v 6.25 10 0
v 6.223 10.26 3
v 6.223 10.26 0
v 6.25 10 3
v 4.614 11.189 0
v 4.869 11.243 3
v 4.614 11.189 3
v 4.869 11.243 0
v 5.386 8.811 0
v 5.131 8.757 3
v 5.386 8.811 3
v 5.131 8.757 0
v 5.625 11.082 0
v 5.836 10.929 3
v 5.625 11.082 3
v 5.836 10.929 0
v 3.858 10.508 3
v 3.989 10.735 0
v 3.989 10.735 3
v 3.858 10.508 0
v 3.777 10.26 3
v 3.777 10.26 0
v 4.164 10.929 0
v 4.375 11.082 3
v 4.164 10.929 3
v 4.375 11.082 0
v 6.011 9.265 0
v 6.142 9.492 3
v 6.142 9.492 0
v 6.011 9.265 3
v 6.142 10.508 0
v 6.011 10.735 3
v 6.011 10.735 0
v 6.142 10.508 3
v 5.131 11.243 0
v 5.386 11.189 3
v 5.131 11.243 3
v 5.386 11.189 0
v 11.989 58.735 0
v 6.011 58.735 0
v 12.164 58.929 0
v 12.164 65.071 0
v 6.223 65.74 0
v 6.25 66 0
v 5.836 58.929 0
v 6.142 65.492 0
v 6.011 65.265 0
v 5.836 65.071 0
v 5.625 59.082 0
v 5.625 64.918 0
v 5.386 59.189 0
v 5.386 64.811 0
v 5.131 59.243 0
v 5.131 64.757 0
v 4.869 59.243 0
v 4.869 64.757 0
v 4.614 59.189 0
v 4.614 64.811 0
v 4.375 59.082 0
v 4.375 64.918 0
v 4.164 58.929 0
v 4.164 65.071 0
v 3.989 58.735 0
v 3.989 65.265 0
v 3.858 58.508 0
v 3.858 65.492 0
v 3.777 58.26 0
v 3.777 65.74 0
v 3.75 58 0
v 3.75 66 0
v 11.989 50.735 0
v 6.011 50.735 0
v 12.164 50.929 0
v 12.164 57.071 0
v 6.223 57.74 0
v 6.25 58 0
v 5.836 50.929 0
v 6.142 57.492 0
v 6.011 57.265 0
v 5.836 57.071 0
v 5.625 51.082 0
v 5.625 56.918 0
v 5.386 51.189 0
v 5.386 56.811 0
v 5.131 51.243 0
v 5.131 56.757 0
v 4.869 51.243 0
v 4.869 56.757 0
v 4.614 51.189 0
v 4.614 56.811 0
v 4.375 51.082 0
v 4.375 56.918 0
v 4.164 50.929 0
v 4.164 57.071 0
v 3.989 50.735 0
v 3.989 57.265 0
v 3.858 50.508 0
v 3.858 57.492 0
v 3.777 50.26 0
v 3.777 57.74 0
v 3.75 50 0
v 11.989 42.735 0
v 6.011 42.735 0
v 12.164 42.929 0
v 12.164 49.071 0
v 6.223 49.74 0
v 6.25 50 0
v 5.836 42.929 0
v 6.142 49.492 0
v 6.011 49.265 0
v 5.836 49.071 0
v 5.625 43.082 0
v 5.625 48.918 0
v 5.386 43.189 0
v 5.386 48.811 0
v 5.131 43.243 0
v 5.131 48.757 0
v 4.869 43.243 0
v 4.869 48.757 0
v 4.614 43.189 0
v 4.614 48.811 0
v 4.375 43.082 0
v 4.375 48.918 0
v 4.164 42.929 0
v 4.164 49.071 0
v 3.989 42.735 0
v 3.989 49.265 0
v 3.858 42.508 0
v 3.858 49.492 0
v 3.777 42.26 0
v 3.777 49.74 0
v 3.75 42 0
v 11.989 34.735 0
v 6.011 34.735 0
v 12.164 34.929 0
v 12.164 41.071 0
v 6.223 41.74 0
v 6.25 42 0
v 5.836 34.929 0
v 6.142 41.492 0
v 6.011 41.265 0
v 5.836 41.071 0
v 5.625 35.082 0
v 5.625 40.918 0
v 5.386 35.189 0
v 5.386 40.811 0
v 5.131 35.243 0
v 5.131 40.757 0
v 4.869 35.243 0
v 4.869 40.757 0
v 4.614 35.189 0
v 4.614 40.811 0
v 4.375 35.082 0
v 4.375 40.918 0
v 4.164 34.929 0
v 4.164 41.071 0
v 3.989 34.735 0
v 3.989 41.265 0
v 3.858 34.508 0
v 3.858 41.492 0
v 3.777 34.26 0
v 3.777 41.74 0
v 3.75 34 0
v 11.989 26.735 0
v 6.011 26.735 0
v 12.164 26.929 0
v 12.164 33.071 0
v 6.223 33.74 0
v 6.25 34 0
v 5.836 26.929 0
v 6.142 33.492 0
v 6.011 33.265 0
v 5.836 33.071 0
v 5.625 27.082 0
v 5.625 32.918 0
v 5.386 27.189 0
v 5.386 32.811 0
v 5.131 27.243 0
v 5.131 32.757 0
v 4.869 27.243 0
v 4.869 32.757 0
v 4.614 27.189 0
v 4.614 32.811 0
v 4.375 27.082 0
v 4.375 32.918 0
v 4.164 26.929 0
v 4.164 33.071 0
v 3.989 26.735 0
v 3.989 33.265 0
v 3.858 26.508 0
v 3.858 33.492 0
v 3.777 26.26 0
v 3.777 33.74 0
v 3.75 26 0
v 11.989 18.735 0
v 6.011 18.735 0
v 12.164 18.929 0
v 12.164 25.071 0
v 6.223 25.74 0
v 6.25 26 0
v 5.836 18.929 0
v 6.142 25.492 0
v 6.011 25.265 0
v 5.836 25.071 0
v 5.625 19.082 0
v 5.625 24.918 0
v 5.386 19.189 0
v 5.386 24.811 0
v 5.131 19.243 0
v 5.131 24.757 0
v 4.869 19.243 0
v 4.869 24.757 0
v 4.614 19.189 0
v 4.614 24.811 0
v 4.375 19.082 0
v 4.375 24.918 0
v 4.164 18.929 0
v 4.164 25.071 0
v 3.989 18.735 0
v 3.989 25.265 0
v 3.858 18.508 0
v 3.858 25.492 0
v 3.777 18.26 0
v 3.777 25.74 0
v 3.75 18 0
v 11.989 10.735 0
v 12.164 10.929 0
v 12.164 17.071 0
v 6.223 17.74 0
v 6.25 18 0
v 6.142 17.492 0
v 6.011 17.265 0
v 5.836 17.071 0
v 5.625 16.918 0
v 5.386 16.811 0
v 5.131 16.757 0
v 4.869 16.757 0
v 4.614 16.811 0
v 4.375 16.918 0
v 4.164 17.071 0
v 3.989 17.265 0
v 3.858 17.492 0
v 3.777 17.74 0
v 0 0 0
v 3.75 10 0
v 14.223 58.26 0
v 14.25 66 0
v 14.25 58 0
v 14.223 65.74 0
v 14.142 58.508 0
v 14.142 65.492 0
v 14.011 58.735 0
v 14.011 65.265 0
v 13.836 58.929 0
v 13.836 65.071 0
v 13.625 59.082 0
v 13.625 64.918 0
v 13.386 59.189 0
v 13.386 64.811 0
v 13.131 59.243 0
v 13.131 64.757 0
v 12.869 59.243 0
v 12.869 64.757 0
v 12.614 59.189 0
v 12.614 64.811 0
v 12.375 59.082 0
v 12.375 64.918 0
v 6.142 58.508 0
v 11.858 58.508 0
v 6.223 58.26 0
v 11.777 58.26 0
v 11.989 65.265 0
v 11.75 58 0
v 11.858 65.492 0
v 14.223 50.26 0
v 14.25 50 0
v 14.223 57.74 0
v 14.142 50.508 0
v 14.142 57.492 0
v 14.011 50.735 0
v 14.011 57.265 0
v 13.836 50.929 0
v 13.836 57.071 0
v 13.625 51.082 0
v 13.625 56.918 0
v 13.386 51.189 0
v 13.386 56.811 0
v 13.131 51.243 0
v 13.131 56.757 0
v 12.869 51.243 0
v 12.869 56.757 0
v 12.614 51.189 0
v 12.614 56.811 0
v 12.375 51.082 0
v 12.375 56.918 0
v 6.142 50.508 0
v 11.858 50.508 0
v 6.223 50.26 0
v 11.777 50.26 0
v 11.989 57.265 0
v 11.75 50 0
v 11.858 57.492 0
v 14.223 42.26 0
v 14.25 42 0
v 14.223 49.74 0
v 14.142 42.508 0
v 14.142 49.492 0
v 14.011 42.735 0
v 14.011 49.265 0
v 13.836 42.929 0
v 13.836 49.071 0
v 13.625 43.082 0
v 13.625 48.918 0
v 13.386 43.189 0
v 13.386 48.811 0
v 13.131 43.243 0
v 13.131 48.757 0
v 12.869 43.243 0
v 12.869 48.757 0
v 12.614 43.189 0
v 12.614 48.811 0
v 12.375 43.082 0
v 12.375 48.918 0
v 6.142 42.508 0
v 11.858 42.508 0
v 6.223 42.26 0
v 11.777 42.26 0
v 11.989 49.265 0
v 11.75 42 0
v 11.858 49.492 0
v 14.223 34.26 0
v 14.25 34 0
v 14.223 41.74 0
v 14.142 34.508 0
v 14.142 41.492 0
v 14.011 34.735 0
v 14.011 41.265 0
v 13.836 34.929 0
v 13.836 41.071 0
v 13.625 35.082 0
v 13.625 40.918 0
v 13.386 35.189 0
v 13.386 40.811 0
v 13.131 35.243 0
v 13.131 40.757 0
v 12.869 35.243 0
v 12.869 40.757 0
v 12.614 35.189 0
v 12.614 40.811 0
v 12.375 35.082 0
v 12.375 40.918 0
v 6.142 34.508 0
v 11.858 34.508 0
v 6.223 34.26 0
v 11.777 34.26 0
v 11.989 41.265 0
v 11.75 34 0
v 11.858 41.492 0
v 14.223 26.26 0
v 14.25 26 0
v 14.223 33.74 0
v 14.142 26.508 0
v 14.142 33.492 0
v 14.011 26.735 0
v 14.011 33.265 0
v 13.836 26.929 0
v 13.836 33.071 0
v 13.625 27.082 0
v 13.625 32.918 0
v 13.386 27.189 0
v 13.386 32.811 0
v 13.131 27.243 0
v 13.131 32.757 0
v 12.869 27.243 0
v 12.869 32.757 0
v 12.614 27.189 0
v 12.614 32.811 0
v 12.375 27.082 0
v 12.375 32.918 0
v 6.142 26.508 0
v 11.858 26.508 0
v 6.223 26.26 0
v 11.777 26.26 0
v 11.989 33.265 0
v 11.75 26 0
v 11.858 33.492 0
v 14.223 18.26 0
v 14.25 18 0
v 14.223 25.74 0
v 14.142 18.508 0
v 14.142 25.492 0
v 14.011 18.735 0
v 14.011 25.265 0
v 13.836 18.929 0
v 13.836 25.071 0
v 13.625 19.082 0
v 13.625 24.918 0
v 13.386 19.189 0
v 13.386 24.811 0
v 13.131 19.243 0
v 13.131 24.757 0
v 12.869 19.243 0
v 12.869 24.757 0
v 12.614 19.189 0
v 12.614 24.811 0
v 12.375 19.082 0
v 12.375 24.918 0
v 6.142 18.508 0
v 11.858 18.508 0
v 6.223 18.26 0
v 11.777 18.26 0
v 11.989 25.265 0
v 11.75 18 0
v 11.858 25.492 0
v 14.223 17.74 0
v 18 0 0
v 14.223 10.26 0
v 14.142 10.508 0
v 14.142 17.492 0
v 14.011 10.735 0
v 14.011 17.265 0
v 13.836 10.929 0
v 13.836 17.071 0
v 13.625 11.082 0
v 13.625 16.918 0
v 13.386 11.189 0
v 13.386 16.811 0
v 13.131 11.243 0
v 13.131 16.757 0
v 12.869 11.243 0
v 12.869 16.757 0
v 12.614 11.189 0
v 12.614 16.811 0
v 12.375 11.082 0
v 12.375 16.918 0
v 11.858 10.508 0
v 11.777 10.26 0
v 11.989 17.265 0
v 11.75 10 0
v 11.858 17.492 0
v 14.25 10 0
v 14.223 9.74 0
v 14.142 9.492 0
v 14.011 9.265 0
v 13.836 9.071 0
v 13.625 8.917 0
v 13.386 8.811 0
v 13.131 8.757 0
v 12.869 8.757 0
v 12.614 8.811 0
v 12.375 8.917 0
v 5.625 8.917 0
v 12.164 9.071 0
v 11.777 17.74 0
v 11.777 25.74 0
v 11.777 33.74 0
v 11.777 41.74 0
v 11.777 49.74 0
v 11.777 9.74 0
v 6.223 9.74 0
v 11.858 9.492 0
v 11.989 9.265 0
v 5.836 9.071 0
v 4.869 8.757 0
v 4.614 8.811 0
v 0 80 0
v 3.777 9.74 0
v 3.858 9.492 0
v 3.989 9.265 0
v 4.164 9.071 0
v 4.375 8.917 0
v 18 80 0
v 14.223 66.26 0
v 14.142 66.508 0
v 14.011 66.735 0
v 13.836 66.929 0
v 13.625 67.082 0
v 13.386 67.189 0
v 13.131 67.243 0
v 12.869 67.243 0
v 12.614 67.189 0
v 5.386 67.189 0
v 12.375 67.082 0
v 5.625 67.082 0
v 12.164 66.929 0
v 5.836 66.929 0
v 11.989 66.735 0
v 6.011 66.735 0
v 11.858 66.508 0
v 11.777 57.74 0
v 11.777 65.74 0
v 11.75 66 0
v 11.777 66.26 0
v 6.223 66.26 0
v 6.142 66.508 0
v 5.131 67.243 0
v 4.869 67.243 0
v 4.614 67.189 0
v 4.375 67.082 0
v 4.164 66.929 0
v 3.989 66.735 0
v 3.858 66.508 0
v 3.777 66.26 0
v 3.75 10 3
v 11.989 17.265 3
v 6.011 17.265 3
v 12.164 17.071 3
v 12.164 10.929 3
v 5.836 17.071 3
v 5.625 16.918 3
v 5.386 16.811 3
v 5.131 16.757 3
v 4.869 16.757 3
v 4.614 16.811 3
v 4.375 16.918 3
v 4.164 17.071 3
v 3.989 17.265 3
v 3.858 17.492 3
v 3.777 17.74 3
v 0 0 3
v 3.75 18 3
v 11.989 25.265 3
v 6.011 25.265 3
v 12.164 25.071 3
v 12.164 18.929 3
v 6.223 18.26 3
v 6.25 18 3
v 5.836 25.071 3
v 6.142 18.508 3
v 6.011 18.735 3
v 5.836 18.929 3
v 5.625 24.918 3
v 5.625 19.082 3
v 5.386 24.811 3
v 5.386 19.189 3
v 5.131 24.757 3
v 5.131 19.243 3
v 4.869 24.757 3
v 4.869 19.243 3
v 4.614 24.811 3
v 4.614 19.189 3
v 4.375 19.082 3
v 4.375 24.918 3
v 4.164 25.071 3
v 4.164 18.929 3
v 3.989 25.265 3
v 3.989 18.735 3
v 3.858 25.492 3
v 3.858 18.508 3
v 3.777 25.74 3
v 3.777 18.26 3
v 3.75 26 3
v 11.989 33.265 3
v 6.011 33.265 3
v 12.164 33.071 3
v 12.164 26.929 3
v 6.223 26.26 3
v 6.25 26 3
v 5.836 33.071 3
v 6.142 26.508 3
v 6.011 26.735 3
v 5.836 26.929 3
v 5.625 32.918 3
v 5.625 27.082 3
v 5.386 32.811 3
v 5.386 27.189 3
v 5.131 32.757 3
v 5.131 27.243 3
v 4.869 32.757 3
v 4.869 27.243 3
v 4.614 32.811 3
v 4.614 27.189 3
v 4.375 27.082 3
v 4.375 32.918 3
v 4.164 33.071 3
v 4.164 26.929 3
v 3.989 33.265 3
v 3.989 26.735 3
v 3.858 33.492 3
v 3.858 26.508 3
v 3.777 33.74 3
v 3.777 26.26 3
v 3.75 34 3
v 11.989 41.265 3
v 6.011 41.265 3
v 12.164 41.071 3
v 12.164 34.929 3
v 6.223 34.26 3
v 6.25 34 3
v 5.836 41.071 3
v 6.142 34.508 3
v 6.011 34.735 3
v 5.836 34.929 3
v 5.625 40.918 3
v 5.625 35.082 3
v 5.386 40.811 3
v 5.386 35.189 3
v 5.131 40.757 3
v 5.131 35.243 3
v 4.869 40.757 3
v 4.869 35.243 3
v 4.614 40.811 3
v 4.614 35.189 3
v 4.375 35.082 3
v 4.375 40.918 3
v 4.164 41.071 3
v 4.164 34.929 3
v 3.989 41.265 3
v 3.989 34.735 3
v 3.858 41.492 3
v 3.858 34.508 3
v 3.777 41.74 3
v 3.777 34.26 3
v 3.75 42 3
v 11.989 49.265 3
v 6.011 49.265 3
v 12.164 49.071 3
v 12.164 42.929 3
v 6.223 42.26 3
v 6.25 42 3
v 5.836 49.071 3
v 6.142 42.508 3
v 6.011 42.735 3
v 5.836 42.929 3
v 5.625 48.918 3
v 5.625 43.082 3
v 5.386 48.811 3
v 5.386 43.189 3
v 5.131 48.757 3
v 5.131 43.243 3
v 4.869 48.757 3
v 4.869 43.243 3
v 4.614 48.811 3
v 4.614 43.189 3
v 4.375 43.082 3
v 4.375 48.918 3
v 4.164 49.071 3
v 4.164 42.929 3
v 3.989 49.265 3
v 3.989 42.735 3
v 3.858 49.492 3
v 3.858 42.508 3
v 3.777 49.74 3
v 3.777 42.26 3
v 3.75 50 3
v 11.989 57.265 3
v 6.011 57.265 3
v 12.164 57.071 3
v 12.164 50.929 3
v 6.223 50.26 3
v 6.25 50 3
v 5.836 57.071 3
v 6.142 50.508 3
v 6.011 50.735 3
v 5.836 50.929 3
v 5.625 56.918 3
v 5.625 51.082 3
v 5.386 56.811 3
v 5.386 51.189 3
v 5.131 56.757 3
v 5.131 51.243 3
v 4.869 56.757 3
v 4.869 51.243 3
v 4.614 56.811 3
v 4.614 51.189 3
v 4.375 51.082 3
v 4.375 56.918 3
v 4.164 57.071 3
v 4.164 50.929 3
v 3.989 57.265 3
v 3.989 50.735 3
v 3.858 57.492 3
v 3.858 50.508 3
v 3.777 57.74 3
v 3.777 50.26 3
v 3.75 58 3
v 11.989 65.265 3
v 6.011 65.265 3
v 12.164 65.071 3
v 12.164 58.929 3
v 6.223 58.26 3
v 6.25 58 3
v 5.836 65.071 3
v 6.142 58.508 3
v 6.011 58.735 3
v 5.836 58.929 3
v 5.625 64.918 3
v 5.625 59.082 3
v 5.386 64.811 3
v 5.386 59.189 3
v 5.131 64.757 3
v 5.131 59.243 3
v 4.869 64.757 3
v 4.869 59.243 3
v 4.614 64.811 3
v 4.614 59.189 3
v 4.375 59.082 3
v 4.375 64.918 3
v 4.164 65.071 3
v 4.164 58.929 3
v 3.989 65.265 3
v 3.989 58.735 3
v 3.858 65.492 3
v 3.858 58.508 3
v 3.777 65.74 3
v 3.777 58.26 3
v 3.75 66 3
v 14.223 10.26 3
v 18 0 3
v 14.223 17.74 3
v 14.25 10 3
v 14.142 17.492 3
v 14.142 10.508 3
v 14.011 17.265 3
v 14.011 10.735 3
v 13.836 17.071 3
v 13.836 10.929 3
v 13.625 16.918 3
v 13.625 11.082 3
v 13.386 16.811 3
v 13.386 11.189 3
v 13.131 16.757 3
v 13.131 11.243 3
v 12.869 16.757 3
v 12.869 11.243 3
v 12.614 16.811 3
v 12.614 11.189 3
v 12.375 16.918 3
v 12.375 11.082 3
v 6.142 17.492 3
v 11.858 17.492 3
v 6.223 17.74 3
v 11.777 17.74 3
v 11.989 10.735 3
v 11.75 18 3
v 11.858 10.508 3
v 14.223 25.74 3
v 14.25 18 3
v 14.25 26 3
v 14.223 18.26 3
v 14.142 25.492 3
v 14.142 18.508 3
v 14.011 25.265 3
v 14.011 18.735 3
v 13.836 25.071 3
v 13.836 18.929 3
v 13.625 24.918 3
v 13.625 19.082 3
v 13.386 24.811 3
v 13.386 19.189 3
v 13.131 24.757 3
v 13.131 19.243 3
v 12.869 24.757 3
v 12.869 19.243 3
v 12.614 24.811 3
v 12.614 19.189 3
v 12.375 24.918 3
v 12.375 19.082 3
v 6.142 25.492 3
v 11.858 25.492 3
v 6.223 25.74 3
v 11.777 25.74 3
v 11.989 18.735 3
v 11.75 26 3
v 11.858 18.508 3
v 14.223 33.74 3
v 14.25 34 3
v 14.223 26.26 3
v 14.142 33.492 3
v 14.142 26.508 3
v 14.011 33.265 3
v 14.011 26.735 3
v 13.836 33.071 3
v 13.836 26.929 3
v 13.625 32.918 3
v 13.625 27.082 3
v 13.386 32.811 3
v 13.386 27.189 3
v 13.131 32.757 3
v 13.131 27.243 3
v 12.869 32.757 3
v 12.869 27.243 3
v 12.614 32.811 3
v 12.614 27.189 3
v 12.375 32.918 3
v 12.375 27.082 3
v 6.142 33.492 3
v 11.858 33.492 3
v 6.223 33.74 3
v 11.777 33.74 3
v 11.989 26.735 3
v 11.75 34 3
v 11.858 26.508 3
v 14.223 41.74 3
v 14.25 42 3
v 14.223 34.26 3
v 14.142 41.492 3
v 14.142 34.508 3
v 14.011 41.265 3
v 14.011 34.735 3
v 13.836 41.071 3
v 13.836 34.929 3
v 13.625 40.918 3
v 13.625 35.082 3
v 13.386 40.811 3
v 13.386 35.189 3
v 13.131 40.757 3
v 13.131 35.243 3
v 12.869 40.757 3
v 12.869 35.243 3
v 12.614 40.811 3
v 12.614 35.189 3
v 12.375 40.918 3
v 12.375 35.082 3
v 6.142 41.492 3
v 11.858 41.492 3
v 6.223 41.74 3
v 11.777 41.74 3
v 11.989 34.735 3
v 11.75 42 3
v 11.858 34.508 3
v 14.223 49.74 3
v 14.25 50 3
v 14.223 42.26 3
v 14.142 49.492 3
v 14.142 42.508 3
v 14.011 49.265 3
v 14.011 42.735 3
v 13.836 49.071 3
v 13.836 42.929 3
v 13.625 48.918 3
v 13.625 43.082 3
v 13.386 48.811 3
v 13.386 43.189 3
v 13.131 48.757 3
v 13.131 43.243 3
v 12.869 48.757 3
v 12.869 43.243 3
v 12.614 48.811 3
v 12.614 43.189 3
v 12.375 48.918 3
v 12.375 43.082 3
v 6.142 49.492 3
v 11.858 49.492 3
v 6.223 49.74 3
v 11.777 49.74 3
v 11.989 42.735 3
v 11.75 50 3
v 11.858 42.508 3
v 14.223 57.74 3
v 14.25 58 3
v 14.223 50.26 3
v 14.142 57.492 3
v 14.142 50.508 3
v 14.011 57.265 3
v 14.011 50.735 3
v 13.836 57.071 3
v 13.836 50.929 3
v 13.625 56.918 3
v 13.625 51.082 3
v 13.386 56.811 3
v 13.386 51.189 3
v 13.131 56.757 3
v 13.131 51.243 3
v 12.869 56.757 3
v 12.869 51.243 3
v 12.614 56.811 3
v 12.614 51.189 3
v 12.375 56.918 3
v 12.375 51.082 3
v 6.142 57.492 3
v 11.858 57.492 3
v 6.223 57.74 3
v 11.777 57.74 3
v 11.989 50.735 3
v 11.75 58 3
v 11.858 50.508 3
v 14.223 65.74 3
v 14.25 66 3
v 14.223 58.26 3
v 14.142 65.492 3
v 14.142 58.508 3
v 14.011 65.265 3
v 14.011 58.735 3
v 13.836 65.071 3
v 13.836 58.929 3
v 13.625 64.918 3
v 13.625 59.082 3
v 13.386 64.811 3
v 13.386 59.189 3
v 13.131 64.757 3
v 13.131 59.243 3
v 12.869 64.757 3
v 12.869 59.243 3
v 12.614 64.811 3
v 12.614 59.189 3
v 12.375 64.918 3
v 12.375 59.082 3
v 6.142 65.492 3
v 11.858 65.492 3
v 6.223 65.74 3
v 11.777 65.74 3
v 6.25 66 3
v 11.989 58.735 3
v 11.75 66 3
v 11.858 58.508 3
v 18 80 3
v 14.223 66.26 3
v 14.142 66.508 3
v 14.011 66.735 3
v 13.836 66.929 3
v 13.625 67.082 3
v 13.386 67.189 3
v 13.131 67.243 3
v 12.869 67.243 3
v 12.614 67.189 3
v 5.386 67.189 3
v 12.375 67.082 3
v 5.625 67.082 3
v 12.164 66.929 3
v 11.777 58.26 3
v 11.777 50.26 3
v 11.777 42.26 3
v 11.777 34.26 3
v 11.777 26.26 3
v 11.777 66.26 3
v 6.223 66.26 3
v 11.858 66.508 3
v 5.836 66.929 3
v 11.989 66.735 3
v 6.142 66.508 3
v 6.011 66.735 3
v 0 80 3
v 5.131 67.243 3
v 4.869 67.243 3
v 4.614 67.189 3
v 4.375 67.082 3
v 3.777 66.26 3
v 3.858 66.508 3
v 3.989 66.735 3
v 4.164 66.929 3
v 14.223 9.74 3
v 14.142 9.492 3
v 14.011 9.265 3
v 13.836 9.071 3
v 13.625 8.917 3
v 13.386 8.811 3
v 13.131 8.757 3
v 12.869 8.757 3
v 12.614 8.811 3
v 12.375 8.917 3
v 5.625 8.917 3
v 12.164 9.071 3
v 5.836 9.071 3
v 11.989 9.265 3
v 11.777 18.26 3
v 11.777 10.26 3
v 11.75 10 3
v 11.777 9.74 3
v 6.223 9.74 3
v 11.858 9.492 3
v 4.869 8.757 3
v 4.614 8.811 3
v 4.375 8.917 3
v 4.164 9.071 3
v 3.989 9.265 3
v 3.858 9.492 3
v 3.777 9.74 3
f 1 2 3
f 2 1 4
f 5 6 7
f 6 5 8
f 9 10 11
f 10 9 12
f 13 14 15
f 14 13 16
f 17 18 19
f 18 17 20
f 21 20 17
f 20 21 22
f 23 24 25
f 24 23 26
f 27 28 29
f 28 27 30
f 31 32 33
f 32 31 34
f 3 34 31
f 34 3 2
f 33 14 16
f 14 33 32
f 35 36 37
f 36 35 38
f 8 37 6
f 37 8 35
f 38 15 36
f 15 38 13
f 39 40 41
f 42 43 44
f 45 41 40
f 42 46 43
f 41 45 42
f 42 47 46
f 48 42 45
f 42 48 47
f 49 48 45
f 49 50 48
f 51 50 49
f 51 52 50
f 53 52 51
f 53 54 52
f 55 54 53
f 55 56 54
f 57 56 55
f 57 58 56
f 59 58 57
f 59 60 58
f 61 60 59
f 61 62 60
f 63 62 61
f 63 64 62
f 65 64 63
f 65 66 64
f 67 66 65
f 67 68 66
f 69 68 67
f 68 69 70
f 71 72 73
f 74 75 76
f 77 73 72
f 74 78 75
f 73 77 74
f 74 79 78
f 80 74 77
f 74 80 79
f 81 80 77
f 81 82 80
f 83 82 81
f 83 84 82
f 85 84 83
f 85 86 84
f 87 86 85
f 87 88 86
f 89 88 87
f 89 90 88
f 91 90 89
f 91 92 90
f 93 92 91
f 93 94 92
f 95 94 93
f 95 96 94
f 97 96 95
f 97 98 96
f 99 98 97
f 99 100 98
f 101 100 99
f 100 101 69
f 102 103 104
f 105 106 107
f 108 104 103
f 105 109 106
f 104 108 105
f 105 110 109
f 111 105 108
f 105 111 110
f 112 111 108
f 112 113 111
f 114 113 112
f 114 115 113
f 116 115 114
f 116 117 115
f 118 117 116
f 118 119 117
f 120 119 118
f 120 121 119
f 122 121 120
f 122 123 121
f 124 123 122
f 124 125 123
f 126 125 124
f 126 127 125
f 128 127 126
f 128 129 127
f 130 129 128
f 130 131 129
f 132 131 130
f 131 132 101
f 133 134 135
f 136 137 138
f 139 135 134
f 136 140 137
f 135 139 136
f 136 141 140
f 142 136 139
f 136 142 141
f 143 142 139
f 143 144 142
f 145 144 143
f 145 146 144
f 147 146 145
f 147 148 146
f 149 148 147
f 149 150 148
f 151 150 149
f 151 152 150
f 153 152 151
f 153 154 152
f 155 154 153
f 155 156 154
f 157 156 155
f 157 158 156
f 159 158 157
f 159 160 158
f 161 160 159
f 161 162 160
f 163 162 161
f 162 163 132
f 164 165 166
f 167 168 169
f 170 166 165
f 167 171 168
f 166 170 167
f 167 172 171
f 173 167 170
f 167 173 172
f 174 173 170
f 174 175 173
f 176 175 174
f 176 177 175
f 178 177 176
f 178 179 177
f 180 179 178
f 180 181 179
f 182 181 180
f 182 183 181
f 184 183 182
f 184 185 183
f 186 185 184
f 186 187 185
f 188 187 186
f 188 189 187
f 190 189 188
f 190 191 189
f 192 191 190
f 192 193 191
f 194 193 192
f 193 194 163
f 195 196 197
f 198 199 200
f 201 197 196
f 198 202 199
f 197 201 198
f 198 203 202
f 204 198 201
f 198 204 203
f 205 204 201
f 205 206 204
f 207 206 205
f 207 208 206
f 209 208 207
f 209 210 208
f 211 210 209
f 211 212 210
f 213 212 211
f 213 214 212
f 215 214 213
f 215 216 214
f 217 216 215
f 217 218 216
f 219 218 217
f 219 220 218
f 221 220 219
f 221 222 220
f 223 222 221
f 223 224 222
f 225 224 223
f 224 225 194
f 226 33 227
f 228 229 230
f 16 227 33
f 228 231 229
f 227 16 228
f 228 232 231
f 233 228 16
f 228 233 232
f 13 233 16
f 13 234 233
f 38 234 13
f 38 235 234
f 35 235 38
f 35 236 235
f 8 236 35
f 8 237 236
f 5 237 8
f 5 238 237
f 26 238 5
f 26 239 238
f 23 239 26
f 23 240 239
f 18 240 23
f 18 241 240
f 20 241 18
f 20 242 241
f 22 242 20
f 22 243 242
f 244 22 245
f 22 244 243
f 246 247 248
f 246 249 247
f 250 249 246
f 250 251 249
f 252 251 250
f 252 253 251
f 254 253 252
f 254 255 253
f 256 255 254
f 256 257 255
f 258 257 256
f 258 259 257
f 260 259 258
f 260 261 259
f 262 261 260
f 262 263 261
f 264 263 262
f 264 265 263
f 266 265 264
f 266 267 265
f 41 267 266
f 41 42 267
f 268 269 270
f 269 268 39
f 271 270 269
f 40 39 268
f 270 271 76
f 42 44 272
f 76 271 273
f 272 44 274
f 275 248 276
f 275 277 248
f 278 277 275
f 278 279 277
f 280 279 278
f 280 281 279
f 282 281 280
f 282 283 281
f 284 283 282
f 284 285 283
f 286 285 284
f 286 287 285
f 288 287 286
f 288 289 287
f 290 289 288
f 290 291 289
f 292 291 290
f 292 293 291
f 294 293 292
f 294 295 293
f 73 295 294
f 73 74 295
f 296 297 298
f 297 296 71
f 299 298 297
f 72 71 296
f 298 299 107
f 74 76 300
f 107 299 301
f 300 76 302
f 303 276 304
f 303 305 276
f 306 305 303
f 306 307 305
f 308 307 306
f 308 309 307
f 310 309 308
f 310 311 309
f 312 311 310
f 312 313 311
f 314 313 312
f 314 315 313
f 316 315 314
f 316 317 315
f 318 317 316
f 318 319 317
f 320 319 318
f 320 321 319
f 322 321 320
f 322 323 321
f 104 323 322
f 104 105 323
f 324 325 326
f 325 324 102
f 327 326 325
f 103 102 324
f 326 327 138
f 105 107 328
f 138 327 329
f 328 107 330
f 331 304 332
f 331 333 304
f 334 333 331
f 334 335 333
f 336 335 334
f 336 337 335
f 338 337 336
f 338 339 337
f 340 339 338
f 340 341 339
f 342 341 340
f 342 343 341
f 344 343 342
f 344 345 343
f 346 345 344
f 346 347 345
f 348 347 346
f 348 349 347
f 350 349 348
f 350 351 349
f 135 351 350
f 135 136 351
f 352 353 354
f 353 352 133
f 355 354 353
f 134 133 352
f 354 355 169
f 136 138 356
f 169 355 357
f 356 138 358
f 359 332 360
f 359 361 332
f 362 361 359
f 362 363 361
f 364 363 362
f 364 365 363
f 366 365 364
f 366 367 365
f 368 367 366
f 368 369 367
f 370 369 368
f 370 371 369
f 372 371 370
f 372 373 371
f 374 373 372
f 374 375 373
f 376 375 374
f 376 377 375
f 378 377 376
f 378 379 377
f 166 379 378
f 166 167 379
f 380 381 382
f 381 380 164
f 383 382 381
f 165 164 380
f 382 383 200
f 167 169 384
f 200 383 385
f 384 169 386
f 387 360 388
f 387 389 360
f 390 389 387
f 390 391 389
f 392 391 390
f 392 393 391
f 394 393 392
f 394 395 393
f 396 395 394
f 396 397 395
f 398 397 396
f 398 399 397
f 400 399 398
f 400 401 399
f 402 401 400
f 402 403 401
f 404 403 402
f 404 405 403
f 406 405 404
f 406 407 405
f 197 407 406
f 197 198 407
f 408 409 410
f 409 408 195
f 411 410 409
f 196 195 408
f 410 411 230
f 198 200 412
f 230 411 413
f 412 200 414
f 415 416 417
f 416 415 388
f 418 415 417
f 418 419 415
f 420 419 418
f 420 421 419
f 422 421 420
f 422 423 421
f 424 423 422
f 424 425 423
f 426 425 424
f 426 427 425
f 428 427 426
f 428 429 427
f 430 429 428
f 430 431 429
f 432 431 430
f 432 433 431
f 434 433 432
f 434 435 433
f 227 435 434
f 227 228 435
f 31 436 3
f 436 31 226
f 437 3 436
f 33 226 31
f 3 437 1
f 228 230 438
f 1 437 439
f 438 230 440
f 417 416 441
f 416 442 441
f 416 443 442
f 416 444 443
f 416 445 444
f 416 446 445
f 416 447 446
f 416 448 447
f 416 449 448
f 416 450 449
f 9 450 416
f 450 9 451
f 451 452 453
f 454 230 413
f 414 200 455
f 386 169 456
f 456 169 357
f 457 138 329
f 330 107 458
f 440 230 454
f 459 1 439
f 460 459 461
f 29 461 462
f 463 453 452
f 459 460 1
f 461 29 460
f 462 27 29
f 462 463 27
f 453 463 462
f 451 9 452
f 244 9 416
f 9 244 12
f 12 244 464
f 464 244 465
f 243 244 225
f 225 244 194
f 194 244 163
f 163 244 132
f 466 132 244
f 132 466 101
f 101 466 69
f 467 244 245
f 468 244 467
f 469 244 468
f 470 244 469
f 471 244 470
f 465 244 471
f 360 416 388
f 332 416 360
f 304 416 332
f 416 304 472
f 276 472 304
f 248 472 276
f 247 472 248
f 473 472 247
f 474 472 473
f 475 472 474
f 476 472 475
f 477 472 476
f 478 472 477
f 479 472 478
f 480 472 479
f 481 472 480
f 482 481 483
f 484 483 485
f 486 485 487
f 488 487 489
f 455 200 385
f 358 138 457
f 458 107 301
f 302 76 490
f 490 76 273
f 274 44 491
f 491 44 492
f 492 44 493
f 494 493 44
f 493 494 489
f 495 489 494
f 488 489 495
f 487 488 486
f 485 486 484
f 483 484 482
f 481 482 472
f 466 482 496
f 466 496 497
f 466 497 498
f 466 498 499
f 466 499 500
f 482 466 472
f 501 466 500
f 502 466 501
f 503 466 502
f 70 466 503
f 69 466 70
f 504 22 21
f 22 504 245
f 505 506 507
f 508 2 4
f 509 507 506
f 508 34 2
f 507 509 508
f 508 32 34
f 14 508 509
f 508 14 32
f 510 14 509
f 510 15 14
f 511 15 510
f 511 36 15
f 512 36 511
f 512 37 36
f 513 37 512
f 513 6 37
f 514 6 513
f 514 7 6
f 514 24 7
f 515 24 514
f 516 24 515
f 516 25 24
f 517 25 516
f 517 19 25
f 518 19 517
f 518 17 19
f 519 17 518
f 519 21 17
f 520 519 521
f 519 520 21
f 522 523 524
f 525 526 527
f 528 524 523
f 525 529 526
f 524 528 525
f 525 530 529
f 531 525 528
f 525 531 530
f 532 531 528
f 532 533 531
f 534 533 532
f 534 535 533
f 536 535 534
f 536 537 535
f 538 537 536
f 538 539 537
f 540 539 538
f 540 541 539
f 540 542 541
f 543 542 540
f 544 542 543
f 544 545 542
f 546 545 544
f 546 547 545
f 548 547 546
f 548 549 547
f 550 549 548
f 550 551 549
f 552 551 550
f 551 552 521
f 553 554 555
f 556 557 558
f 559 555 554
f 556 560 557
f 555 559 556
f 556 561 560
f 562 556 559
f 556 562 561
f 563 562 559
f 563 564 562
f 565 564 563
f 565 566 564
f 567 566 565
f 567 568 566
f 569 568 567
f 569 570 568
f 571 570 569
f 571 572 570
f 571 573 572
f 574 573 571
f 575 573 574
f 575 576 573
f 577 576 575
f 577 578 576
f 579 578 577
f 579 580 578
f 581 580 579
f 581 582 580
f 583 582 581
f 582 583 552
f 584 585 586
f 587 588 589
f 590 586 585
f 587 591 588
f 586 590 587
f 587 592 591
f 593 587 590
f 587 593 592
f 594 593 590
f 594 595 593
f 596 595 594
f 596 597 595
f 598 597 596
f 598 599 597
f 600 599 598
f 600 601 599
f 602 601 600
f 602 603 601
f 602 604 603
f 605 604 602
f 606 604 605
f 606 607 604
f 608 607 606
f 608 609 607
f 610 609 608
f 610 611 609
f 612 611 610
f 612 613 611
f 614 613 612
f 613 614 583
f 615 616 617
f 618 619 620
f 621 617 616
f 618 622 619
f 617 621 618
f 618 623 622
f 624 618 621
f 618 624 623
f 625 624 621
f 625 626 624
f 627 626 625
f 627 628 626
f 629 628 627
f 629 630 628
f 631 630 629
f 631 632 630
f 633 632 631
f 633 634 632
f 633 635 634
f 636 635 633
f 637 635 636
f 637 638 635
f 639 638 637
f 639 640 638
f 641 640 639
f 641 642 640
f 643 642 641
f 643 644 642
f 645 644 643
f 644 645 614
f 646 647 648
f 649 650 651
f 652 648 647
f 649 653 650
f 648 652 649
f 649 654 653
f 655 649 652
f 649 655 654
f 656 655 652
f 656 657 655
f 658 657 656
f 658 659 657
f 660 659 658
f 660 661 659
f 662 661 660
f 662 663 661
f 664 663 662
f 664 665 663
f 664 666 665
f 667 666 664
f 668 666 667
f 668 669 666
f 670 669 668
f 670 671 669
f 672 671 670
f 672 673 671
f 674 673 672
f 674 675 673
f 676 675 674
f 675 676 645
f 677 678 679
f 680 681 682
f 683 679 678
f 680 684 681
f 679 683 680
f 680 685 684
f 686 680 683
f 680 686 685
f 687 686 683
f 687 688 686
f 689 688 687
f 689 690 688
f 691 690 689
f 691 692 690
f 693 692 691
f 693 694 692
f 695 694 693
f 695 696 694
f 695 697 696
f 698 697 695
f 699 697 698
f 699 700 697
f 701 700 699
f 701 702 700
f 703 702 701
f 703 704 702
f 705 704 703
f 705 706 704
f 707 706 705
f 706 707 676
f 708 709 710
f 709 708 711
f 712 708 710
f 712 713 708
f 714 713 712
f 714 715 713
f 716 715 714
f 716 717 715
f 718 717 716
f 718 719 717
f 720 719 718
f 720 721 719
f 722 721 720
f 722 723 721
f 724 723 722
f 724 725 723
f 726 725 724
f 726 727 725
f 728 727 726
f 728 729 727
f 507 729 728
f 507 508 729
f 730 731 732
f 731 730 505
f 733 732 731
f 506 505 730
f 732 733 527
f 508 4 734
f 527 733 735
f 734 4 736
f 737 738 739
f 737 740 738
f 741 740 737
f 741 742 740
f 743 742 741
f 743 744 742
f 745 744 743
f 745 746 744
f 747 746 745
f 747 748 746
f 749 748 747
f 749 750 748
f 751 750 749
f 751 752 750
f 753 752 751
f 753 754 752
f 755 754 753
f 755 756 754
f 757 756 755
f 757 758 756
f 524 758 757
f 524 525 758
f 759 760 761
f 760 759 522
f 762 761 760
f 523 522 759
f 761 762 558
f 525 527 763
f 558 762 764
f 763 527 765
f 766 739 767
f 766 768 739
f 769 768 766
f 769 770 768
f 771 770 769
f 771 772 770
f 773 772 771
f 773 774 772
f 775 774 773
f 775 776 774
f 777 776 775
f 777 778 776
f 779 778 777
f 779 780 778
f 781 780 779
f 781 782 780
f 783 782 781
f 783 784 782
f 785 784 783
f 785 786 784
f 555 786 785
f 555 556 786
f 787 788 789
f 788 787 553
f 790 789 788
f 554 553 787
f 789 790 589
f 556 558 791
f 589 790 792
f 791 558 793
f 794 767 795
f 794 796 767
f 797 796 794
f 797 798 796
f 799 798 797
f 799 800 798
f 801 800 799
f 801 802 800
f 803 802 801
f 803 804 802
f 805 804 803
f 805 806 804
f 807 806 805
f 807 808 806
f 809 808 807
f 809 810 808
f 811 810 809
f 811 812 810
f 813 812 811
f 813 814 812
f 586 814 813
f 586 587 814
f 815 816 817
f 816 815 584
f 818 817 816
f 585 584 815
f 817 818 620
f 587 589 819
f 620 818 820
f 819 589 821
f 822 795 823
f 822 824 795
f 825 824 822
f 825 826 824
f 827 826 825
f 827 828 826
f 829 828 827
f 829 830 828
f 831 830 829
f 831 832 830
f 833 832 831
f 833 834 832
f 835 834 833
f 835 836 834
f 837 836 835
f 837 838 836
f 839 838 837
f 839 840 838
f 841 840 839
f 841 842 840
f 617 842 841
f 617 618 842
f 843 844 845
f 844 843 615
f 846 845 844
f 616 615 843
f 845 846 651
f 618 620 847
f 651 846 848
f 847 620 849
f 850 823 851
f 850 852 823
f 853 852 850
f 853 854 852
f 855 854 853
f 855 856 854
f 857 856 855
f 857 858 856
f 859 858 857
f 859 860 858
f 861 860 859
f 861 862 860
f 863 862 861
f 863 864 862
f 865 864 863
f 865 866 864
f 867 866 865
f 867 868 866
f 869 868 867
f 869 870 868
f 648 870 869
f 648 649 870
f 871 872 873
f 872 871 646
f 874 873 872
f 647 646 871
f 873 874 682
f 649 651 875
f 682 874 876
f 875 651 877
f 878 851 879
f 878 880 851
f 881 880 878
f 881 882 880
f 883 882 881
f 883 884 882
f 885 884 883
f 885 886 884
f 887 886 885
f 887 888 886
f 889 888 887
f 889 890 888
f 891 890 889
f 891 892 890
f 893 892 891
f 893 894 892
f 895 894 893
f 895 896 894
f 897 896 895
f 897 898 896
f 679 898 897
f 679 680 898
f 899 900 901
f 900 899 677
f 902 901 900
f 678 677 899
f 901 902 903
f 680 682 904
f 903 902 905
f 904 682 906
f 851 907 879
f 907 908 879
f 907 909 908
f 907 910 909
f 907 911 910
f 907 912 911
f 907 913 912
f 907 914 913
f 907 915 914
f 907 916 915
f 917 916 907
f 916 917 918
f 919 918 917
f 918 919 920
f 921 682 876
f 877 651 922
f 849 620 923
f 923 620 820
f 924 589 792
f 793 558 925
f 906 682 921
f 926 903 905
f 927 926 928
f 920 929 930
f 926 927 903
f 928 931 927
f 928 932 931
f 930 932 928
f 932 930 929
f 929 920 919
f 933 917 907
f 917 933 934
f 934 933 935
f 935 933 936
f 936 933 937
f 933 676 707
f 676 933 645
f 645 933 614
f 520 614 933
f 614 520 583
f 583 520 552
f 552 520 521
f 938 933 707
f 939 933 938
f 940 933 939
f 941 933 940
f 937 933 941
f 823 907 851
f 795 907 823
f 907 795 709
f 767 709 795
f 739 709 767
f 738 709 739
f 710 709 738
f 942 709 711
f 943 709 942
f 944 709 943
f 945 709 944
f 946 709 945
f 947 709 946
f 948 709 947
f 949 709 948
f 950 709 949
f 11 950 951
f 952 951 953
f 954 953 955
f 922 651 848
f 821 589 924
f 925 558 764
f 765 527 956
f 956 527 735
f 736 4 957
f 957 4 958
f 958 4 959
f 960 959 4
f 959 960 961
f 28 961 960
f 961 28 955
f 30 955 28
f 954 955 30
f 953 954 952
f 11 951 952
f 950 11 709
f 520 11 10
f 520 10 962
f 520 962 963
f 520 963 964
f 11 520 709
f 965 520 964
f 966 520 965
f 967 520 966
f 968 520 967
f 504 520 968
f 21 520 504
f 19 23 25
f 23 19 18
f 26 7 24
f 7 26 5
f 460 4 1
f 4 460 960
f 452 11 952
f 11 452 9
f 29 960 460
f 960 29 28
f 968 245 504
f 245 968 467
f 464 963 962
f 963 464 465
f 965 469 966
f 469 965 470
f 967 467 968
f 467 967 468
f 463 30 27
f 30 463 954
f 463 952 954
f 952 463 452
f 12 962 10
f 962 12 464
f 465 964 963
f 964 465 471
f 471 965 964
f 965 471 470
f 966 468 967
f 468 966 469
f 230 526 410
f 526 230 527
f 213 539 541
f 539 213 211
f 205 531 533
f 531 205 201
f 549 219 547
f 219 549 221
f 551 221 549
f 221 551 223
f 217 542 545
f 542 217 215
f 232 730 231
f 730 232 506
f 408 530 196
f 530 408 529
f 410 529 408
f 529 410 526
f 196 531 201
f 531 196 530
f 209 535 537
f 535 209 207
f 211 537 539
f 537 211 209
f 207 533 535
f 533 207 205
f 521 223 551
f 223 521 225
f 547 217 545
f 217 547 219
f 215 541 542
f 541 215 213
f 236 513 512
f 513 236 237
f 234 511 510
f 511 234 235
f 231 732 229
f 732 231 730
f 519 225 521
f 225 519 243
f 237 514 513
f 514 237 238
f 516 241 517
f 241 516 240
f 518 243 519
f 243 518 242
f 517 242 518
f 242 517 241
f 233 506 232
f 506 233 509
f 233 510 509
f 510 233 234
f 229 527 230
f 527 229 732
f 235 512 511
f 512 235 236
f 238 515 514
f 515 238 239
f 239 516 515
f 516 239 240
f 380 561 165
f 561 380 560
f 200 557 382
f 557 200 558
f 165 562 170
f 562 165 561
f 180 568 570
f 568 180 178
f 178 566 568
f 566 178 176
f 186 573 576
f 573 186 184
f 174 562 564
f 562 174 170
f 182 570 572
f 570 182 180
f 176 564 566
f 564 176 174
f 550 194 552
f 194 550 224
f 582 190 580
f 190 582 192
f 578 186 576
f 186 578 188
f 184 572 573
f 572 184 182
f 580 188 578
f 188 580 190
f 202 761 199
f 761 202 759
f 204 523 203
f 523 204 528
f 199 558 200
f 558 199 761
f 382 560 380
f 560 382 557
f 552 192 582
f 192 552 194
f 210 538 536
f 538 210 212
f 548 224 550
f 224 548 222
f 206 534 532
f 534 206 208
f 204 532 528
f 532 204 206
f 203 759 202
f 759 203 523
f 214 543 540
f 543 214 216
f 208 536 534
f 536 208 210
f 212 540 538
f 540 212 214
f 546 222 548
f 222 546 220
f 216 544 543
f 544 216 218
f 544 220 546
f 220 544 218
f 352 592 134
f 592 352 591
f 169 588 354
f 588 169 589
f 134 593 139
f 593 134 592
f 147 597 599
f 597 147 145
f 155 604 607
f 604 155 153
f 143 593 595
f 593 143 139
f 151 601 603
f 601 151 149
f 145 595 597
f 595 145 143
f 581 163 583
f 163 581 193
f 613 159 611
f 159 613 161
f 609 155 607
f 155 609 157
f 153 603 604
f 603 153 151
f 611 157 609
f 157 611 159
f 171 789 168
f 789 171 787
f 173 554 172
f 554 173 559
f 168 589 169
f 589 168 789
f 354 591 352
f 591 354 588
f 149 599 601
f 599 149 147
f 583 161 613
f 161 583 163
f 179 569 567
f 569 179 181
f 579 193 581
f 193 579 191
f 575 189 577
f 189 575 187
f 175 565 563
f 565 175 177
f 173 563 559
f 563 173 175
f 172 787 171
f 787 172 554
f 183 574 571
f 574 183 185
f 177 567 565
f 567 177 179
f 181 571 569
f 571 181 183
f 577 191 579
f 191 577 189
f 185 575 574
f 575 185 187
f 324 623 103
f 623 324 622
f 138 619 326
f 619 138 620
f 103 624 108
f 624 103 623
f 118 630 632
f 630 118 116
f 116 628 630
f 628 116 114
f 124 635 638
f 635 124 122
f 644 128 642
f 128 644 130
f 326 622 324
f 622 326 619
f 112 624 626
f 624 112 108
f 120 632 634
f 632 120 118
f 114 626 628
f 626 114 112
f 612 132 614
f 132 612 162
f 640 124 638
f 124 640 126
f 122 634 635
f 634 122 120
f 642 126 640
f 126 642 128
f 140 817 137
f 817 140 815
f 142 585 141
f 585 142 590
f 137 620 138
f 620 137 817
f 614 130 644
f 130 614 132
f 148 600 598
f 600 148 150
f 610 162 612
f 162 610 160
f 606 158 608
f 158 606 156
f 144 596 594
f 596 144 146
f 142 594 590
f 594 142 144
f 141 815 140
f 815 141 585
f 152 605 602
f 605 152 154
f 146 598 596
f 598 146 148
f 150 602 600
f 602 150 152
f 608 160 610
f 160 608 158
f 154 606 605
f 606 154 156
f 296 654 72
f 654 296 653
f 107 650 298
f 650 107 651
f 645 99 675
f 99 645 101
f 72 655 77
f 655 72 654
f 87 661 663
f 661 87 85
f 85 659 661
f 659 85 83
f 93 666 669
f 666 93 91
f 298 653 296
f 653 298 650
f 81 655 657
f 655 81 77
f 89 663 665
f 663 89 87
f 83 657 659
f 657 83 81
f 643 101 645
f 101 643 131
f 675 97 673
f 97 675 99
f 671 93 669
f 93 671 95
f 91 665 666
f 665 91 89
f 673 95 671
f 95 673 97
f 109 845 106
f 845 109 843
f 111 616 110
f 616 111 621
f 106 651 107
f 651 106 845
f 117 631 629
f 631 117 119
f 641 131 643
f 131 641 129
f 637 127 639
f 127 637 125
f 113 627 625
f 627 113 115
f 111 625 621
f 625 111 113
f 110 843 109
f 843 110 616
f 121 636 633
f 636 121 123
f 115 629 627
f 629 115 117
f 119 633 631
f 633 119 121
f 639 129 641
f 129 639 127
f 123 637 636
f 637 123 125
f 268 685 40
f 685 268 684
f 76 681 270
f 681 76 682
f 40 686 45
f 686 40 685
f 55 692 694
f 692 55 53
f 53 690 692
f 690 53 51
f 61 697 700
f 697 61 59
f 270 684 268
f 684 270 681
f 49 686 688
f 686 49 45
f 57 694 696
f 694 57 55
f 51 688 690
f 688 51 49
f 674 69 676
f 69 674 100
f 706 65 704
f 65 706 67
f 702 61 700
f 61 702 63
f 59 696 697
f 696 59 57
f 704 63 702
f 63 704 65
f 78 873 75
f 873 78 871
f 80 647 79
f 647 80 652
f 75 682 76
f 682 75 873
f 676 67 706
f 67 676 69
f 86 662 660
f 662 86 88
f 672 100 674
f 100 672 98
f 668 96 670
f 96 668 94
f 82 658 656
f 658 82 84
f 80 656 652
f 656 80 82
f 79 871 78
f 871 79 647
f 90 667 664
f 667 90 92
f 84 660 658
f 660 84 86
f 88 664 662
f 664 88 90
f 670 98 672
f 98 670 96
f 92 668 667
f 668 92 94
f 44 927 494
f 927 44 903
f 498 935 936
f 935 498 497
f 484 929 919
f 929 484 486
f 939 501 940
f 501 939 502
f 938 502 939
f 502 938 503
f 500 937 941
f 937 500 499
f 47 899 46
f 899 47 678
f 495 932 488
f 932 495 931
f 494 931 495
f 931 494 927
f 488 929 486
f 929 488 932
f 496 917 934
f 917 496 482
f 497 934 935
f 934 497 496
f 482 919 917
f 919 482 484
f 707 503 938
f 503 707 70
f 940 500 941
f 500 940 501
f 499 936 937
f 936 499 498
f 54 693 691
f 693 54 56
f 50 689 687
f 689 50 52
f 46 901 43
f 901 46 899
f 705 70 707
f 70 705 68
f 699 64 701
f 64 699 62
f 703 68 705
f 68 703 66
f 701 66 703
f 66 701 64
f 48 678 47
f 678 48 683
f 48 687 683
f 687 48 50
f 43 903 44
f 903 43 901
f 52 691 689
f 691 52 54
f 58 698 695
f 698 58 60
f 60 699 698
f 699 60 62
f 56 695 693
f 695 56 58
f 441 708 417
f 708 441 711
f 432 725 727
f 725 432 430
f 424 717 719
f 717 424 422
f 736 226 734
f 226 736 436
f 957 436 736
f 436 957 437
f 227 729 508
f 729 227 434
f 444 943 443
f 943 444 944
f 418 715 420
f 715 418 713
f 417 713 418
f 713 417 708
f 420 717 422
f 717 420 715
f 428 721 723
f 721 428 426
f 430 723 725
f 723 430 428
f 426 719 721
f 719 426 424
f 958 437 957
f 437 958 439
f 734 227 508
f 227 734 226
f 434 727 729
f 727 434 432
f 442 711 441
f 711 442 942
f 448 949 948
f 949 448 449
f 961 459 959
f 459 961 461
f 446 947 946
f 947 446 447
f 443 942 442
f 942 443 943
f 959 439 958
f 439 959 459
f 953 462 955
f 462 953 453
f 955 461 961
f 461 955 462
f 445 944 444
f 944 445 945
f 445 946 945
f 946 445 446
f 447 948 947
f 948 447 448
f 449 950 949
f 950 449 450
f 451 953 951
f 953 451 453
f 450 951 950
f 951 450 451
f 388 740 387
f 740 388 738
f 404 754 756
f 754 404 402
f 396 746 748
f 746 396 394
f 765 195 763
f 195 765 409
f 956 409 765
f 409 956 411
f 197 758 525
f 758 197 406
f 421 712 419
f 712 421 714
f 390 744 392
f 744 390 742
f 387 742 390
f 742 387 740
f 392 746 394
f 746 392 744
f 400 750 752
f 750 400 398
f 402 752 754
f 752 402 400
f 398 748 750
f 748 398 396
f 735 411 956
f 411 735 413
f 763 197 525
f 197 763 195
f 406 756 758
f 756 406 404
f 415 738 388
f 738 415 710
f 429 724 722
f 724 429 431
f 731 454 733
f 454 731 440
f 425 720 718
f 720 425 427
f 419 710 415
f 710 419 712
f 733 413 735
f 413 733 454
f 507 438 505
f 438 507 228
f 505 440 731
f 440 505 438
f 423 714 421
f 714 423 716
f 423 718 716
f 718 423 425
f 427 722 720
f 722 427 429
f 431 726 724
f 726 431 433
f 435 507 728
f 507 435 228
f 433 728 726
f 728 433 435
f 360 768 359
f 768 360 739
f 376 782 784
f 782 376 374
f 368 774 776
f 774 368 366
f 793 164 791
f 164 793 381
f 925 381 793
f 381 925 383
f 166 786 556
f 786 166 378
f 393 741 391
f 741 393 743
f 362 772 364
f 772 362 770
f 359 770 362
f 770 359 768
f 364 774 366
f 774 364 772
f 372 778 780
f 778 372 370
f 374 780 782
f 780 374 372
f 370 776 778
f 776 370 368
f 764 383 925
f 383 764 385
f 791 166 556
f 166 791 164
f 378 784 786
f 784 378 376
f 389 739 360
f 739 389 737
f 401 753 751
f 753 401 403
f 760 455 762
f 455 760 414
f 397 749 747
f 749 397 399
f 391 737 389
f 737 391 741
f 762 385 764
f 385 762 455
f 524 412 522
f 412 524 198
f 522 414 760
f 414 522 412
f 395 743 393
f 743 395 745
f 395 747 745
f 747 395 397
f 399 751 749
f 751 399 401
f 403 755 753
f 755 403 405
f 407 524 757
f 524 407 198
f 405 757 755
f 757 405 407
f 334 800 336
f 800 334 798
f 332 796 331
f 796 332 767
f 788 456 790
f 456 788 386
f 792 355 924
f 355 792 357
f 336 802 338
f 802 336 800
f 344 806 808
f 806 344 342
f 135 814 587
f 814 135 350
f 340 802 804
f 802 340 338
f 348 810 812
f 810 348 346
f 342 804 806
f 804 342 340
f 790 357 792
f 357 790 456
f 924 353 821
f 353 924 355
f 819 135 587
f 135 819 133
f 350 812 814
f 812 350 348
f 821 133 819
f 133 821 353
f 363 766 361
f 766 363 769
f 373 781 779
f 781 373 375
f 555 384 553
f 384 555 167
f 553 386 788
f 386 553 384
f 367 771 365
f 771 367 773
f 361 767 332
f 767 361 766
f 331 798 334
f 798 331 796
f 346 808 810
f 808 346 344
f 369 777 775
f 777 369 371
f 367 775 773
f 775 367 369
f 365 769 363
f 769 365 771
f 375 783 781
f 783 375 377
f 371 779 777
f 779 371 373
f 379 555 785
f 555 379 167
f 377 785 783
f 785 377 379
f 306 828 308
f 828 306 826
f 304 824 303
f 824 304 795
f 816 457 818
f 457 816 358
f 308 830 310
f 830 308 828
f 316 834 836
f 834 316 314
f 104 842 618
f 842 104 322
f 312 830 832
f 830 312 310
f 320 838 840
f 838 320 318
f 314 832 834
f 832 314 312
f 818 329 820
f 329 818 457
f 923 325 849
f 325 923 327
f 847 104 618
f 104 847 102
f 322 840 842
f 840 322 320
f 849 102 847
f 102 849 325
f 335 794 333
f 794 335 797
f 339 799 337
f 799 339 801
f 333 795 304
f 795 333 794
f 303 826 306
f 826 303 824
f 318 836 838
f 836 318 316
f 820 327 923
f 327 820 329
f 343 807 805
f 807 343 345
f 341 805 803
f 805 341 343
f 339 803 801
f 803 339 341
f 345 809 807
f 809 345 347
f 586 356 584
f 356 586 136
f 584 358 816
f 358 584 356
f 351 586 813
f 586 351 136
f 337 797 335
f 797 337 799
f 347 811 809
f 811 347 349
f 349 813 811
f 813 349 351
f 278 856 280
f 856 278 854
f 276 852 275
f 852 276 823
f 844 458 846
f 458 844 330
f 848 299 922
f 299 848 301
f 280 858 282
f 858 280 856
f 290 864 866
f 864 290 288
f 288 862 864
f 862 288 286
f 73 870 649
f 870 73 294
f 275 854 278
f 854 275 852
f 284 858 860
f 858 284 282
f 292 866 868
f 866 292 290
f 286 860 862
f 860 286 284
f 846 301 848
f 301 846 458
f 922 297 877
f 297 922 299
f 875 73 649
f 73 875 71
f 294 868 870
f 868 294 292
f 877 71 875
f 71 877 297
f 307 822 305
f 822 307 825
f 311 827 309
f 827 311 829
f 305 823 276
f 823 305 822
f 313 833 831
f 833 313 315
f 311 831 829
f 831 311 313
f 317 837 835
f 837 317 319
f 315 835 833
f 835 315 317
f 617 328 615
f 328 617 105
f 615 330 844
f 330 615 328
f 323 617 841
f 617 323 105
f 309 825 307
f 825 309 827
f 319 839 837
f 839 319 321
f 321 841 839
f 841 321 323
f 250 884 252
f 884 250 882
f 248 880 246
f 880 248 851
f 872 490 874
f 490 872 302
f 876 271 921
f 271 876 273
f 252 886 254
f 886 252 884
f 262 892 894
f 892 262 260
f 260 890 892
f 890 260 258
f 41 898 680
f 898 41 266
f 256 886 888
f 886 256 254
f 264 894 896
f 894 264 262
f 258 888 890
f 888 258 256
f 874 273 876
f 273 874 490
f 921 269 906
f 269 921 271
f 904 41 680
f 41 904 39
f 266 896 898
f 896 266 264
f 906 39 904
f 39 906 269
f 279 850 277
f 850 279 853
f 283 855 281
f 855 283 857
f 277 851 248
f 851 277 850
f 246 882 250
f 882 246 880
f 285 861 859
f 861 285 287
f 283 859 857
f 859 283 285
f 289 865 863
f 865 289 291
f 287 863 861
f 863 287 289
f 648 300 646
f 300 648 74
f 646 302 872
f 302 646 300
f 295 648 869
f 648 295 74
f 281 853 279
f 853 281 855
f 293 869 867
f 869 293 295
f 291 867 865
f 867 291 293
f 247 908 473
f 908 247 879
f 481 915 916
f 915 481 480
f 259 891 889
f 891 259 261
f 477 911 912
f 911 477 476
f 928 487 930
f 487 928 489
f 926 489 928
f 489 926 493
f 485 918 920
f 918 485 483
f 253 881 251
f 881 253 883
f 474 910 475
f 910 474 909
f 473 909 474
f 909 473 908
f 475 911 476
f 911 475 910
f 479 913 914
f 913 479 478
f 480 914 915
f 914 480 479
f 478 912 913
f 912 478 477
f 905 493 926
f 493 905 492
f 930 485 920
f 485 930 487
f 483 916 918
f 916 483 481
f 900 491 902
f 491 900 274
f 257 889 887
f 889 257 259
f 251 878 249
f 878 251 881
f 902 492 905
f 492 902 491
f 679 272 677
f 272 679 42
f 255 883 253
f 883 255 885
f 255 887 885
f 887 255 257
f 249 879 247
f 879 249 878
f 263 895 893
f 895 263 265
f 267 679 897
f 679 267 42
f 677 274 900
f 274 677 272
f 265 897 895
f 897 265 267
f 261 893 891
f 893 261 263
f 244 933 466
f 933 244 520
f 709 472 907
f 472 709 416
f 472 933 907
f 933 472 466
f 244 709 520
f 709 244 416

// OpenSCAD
$fn = 30;

//5 microliter / (pi * ((2.5/2) mm)^2)

spacing = 8;

slide_height = 3.0;
slide_width = 18;
slide_length = 80;

hole_diameter = 2.5;

difference(){
    cube([slide_width, slide_length, slide_height], false);
    
    for(i = [0:1]){
        for(j = [0:7]){
            translate([(spacing*i)+5,(j*spacing)+10]){
                cylinder(d=hole_diameter, h=slide_height);
            }
        }
    }
}
